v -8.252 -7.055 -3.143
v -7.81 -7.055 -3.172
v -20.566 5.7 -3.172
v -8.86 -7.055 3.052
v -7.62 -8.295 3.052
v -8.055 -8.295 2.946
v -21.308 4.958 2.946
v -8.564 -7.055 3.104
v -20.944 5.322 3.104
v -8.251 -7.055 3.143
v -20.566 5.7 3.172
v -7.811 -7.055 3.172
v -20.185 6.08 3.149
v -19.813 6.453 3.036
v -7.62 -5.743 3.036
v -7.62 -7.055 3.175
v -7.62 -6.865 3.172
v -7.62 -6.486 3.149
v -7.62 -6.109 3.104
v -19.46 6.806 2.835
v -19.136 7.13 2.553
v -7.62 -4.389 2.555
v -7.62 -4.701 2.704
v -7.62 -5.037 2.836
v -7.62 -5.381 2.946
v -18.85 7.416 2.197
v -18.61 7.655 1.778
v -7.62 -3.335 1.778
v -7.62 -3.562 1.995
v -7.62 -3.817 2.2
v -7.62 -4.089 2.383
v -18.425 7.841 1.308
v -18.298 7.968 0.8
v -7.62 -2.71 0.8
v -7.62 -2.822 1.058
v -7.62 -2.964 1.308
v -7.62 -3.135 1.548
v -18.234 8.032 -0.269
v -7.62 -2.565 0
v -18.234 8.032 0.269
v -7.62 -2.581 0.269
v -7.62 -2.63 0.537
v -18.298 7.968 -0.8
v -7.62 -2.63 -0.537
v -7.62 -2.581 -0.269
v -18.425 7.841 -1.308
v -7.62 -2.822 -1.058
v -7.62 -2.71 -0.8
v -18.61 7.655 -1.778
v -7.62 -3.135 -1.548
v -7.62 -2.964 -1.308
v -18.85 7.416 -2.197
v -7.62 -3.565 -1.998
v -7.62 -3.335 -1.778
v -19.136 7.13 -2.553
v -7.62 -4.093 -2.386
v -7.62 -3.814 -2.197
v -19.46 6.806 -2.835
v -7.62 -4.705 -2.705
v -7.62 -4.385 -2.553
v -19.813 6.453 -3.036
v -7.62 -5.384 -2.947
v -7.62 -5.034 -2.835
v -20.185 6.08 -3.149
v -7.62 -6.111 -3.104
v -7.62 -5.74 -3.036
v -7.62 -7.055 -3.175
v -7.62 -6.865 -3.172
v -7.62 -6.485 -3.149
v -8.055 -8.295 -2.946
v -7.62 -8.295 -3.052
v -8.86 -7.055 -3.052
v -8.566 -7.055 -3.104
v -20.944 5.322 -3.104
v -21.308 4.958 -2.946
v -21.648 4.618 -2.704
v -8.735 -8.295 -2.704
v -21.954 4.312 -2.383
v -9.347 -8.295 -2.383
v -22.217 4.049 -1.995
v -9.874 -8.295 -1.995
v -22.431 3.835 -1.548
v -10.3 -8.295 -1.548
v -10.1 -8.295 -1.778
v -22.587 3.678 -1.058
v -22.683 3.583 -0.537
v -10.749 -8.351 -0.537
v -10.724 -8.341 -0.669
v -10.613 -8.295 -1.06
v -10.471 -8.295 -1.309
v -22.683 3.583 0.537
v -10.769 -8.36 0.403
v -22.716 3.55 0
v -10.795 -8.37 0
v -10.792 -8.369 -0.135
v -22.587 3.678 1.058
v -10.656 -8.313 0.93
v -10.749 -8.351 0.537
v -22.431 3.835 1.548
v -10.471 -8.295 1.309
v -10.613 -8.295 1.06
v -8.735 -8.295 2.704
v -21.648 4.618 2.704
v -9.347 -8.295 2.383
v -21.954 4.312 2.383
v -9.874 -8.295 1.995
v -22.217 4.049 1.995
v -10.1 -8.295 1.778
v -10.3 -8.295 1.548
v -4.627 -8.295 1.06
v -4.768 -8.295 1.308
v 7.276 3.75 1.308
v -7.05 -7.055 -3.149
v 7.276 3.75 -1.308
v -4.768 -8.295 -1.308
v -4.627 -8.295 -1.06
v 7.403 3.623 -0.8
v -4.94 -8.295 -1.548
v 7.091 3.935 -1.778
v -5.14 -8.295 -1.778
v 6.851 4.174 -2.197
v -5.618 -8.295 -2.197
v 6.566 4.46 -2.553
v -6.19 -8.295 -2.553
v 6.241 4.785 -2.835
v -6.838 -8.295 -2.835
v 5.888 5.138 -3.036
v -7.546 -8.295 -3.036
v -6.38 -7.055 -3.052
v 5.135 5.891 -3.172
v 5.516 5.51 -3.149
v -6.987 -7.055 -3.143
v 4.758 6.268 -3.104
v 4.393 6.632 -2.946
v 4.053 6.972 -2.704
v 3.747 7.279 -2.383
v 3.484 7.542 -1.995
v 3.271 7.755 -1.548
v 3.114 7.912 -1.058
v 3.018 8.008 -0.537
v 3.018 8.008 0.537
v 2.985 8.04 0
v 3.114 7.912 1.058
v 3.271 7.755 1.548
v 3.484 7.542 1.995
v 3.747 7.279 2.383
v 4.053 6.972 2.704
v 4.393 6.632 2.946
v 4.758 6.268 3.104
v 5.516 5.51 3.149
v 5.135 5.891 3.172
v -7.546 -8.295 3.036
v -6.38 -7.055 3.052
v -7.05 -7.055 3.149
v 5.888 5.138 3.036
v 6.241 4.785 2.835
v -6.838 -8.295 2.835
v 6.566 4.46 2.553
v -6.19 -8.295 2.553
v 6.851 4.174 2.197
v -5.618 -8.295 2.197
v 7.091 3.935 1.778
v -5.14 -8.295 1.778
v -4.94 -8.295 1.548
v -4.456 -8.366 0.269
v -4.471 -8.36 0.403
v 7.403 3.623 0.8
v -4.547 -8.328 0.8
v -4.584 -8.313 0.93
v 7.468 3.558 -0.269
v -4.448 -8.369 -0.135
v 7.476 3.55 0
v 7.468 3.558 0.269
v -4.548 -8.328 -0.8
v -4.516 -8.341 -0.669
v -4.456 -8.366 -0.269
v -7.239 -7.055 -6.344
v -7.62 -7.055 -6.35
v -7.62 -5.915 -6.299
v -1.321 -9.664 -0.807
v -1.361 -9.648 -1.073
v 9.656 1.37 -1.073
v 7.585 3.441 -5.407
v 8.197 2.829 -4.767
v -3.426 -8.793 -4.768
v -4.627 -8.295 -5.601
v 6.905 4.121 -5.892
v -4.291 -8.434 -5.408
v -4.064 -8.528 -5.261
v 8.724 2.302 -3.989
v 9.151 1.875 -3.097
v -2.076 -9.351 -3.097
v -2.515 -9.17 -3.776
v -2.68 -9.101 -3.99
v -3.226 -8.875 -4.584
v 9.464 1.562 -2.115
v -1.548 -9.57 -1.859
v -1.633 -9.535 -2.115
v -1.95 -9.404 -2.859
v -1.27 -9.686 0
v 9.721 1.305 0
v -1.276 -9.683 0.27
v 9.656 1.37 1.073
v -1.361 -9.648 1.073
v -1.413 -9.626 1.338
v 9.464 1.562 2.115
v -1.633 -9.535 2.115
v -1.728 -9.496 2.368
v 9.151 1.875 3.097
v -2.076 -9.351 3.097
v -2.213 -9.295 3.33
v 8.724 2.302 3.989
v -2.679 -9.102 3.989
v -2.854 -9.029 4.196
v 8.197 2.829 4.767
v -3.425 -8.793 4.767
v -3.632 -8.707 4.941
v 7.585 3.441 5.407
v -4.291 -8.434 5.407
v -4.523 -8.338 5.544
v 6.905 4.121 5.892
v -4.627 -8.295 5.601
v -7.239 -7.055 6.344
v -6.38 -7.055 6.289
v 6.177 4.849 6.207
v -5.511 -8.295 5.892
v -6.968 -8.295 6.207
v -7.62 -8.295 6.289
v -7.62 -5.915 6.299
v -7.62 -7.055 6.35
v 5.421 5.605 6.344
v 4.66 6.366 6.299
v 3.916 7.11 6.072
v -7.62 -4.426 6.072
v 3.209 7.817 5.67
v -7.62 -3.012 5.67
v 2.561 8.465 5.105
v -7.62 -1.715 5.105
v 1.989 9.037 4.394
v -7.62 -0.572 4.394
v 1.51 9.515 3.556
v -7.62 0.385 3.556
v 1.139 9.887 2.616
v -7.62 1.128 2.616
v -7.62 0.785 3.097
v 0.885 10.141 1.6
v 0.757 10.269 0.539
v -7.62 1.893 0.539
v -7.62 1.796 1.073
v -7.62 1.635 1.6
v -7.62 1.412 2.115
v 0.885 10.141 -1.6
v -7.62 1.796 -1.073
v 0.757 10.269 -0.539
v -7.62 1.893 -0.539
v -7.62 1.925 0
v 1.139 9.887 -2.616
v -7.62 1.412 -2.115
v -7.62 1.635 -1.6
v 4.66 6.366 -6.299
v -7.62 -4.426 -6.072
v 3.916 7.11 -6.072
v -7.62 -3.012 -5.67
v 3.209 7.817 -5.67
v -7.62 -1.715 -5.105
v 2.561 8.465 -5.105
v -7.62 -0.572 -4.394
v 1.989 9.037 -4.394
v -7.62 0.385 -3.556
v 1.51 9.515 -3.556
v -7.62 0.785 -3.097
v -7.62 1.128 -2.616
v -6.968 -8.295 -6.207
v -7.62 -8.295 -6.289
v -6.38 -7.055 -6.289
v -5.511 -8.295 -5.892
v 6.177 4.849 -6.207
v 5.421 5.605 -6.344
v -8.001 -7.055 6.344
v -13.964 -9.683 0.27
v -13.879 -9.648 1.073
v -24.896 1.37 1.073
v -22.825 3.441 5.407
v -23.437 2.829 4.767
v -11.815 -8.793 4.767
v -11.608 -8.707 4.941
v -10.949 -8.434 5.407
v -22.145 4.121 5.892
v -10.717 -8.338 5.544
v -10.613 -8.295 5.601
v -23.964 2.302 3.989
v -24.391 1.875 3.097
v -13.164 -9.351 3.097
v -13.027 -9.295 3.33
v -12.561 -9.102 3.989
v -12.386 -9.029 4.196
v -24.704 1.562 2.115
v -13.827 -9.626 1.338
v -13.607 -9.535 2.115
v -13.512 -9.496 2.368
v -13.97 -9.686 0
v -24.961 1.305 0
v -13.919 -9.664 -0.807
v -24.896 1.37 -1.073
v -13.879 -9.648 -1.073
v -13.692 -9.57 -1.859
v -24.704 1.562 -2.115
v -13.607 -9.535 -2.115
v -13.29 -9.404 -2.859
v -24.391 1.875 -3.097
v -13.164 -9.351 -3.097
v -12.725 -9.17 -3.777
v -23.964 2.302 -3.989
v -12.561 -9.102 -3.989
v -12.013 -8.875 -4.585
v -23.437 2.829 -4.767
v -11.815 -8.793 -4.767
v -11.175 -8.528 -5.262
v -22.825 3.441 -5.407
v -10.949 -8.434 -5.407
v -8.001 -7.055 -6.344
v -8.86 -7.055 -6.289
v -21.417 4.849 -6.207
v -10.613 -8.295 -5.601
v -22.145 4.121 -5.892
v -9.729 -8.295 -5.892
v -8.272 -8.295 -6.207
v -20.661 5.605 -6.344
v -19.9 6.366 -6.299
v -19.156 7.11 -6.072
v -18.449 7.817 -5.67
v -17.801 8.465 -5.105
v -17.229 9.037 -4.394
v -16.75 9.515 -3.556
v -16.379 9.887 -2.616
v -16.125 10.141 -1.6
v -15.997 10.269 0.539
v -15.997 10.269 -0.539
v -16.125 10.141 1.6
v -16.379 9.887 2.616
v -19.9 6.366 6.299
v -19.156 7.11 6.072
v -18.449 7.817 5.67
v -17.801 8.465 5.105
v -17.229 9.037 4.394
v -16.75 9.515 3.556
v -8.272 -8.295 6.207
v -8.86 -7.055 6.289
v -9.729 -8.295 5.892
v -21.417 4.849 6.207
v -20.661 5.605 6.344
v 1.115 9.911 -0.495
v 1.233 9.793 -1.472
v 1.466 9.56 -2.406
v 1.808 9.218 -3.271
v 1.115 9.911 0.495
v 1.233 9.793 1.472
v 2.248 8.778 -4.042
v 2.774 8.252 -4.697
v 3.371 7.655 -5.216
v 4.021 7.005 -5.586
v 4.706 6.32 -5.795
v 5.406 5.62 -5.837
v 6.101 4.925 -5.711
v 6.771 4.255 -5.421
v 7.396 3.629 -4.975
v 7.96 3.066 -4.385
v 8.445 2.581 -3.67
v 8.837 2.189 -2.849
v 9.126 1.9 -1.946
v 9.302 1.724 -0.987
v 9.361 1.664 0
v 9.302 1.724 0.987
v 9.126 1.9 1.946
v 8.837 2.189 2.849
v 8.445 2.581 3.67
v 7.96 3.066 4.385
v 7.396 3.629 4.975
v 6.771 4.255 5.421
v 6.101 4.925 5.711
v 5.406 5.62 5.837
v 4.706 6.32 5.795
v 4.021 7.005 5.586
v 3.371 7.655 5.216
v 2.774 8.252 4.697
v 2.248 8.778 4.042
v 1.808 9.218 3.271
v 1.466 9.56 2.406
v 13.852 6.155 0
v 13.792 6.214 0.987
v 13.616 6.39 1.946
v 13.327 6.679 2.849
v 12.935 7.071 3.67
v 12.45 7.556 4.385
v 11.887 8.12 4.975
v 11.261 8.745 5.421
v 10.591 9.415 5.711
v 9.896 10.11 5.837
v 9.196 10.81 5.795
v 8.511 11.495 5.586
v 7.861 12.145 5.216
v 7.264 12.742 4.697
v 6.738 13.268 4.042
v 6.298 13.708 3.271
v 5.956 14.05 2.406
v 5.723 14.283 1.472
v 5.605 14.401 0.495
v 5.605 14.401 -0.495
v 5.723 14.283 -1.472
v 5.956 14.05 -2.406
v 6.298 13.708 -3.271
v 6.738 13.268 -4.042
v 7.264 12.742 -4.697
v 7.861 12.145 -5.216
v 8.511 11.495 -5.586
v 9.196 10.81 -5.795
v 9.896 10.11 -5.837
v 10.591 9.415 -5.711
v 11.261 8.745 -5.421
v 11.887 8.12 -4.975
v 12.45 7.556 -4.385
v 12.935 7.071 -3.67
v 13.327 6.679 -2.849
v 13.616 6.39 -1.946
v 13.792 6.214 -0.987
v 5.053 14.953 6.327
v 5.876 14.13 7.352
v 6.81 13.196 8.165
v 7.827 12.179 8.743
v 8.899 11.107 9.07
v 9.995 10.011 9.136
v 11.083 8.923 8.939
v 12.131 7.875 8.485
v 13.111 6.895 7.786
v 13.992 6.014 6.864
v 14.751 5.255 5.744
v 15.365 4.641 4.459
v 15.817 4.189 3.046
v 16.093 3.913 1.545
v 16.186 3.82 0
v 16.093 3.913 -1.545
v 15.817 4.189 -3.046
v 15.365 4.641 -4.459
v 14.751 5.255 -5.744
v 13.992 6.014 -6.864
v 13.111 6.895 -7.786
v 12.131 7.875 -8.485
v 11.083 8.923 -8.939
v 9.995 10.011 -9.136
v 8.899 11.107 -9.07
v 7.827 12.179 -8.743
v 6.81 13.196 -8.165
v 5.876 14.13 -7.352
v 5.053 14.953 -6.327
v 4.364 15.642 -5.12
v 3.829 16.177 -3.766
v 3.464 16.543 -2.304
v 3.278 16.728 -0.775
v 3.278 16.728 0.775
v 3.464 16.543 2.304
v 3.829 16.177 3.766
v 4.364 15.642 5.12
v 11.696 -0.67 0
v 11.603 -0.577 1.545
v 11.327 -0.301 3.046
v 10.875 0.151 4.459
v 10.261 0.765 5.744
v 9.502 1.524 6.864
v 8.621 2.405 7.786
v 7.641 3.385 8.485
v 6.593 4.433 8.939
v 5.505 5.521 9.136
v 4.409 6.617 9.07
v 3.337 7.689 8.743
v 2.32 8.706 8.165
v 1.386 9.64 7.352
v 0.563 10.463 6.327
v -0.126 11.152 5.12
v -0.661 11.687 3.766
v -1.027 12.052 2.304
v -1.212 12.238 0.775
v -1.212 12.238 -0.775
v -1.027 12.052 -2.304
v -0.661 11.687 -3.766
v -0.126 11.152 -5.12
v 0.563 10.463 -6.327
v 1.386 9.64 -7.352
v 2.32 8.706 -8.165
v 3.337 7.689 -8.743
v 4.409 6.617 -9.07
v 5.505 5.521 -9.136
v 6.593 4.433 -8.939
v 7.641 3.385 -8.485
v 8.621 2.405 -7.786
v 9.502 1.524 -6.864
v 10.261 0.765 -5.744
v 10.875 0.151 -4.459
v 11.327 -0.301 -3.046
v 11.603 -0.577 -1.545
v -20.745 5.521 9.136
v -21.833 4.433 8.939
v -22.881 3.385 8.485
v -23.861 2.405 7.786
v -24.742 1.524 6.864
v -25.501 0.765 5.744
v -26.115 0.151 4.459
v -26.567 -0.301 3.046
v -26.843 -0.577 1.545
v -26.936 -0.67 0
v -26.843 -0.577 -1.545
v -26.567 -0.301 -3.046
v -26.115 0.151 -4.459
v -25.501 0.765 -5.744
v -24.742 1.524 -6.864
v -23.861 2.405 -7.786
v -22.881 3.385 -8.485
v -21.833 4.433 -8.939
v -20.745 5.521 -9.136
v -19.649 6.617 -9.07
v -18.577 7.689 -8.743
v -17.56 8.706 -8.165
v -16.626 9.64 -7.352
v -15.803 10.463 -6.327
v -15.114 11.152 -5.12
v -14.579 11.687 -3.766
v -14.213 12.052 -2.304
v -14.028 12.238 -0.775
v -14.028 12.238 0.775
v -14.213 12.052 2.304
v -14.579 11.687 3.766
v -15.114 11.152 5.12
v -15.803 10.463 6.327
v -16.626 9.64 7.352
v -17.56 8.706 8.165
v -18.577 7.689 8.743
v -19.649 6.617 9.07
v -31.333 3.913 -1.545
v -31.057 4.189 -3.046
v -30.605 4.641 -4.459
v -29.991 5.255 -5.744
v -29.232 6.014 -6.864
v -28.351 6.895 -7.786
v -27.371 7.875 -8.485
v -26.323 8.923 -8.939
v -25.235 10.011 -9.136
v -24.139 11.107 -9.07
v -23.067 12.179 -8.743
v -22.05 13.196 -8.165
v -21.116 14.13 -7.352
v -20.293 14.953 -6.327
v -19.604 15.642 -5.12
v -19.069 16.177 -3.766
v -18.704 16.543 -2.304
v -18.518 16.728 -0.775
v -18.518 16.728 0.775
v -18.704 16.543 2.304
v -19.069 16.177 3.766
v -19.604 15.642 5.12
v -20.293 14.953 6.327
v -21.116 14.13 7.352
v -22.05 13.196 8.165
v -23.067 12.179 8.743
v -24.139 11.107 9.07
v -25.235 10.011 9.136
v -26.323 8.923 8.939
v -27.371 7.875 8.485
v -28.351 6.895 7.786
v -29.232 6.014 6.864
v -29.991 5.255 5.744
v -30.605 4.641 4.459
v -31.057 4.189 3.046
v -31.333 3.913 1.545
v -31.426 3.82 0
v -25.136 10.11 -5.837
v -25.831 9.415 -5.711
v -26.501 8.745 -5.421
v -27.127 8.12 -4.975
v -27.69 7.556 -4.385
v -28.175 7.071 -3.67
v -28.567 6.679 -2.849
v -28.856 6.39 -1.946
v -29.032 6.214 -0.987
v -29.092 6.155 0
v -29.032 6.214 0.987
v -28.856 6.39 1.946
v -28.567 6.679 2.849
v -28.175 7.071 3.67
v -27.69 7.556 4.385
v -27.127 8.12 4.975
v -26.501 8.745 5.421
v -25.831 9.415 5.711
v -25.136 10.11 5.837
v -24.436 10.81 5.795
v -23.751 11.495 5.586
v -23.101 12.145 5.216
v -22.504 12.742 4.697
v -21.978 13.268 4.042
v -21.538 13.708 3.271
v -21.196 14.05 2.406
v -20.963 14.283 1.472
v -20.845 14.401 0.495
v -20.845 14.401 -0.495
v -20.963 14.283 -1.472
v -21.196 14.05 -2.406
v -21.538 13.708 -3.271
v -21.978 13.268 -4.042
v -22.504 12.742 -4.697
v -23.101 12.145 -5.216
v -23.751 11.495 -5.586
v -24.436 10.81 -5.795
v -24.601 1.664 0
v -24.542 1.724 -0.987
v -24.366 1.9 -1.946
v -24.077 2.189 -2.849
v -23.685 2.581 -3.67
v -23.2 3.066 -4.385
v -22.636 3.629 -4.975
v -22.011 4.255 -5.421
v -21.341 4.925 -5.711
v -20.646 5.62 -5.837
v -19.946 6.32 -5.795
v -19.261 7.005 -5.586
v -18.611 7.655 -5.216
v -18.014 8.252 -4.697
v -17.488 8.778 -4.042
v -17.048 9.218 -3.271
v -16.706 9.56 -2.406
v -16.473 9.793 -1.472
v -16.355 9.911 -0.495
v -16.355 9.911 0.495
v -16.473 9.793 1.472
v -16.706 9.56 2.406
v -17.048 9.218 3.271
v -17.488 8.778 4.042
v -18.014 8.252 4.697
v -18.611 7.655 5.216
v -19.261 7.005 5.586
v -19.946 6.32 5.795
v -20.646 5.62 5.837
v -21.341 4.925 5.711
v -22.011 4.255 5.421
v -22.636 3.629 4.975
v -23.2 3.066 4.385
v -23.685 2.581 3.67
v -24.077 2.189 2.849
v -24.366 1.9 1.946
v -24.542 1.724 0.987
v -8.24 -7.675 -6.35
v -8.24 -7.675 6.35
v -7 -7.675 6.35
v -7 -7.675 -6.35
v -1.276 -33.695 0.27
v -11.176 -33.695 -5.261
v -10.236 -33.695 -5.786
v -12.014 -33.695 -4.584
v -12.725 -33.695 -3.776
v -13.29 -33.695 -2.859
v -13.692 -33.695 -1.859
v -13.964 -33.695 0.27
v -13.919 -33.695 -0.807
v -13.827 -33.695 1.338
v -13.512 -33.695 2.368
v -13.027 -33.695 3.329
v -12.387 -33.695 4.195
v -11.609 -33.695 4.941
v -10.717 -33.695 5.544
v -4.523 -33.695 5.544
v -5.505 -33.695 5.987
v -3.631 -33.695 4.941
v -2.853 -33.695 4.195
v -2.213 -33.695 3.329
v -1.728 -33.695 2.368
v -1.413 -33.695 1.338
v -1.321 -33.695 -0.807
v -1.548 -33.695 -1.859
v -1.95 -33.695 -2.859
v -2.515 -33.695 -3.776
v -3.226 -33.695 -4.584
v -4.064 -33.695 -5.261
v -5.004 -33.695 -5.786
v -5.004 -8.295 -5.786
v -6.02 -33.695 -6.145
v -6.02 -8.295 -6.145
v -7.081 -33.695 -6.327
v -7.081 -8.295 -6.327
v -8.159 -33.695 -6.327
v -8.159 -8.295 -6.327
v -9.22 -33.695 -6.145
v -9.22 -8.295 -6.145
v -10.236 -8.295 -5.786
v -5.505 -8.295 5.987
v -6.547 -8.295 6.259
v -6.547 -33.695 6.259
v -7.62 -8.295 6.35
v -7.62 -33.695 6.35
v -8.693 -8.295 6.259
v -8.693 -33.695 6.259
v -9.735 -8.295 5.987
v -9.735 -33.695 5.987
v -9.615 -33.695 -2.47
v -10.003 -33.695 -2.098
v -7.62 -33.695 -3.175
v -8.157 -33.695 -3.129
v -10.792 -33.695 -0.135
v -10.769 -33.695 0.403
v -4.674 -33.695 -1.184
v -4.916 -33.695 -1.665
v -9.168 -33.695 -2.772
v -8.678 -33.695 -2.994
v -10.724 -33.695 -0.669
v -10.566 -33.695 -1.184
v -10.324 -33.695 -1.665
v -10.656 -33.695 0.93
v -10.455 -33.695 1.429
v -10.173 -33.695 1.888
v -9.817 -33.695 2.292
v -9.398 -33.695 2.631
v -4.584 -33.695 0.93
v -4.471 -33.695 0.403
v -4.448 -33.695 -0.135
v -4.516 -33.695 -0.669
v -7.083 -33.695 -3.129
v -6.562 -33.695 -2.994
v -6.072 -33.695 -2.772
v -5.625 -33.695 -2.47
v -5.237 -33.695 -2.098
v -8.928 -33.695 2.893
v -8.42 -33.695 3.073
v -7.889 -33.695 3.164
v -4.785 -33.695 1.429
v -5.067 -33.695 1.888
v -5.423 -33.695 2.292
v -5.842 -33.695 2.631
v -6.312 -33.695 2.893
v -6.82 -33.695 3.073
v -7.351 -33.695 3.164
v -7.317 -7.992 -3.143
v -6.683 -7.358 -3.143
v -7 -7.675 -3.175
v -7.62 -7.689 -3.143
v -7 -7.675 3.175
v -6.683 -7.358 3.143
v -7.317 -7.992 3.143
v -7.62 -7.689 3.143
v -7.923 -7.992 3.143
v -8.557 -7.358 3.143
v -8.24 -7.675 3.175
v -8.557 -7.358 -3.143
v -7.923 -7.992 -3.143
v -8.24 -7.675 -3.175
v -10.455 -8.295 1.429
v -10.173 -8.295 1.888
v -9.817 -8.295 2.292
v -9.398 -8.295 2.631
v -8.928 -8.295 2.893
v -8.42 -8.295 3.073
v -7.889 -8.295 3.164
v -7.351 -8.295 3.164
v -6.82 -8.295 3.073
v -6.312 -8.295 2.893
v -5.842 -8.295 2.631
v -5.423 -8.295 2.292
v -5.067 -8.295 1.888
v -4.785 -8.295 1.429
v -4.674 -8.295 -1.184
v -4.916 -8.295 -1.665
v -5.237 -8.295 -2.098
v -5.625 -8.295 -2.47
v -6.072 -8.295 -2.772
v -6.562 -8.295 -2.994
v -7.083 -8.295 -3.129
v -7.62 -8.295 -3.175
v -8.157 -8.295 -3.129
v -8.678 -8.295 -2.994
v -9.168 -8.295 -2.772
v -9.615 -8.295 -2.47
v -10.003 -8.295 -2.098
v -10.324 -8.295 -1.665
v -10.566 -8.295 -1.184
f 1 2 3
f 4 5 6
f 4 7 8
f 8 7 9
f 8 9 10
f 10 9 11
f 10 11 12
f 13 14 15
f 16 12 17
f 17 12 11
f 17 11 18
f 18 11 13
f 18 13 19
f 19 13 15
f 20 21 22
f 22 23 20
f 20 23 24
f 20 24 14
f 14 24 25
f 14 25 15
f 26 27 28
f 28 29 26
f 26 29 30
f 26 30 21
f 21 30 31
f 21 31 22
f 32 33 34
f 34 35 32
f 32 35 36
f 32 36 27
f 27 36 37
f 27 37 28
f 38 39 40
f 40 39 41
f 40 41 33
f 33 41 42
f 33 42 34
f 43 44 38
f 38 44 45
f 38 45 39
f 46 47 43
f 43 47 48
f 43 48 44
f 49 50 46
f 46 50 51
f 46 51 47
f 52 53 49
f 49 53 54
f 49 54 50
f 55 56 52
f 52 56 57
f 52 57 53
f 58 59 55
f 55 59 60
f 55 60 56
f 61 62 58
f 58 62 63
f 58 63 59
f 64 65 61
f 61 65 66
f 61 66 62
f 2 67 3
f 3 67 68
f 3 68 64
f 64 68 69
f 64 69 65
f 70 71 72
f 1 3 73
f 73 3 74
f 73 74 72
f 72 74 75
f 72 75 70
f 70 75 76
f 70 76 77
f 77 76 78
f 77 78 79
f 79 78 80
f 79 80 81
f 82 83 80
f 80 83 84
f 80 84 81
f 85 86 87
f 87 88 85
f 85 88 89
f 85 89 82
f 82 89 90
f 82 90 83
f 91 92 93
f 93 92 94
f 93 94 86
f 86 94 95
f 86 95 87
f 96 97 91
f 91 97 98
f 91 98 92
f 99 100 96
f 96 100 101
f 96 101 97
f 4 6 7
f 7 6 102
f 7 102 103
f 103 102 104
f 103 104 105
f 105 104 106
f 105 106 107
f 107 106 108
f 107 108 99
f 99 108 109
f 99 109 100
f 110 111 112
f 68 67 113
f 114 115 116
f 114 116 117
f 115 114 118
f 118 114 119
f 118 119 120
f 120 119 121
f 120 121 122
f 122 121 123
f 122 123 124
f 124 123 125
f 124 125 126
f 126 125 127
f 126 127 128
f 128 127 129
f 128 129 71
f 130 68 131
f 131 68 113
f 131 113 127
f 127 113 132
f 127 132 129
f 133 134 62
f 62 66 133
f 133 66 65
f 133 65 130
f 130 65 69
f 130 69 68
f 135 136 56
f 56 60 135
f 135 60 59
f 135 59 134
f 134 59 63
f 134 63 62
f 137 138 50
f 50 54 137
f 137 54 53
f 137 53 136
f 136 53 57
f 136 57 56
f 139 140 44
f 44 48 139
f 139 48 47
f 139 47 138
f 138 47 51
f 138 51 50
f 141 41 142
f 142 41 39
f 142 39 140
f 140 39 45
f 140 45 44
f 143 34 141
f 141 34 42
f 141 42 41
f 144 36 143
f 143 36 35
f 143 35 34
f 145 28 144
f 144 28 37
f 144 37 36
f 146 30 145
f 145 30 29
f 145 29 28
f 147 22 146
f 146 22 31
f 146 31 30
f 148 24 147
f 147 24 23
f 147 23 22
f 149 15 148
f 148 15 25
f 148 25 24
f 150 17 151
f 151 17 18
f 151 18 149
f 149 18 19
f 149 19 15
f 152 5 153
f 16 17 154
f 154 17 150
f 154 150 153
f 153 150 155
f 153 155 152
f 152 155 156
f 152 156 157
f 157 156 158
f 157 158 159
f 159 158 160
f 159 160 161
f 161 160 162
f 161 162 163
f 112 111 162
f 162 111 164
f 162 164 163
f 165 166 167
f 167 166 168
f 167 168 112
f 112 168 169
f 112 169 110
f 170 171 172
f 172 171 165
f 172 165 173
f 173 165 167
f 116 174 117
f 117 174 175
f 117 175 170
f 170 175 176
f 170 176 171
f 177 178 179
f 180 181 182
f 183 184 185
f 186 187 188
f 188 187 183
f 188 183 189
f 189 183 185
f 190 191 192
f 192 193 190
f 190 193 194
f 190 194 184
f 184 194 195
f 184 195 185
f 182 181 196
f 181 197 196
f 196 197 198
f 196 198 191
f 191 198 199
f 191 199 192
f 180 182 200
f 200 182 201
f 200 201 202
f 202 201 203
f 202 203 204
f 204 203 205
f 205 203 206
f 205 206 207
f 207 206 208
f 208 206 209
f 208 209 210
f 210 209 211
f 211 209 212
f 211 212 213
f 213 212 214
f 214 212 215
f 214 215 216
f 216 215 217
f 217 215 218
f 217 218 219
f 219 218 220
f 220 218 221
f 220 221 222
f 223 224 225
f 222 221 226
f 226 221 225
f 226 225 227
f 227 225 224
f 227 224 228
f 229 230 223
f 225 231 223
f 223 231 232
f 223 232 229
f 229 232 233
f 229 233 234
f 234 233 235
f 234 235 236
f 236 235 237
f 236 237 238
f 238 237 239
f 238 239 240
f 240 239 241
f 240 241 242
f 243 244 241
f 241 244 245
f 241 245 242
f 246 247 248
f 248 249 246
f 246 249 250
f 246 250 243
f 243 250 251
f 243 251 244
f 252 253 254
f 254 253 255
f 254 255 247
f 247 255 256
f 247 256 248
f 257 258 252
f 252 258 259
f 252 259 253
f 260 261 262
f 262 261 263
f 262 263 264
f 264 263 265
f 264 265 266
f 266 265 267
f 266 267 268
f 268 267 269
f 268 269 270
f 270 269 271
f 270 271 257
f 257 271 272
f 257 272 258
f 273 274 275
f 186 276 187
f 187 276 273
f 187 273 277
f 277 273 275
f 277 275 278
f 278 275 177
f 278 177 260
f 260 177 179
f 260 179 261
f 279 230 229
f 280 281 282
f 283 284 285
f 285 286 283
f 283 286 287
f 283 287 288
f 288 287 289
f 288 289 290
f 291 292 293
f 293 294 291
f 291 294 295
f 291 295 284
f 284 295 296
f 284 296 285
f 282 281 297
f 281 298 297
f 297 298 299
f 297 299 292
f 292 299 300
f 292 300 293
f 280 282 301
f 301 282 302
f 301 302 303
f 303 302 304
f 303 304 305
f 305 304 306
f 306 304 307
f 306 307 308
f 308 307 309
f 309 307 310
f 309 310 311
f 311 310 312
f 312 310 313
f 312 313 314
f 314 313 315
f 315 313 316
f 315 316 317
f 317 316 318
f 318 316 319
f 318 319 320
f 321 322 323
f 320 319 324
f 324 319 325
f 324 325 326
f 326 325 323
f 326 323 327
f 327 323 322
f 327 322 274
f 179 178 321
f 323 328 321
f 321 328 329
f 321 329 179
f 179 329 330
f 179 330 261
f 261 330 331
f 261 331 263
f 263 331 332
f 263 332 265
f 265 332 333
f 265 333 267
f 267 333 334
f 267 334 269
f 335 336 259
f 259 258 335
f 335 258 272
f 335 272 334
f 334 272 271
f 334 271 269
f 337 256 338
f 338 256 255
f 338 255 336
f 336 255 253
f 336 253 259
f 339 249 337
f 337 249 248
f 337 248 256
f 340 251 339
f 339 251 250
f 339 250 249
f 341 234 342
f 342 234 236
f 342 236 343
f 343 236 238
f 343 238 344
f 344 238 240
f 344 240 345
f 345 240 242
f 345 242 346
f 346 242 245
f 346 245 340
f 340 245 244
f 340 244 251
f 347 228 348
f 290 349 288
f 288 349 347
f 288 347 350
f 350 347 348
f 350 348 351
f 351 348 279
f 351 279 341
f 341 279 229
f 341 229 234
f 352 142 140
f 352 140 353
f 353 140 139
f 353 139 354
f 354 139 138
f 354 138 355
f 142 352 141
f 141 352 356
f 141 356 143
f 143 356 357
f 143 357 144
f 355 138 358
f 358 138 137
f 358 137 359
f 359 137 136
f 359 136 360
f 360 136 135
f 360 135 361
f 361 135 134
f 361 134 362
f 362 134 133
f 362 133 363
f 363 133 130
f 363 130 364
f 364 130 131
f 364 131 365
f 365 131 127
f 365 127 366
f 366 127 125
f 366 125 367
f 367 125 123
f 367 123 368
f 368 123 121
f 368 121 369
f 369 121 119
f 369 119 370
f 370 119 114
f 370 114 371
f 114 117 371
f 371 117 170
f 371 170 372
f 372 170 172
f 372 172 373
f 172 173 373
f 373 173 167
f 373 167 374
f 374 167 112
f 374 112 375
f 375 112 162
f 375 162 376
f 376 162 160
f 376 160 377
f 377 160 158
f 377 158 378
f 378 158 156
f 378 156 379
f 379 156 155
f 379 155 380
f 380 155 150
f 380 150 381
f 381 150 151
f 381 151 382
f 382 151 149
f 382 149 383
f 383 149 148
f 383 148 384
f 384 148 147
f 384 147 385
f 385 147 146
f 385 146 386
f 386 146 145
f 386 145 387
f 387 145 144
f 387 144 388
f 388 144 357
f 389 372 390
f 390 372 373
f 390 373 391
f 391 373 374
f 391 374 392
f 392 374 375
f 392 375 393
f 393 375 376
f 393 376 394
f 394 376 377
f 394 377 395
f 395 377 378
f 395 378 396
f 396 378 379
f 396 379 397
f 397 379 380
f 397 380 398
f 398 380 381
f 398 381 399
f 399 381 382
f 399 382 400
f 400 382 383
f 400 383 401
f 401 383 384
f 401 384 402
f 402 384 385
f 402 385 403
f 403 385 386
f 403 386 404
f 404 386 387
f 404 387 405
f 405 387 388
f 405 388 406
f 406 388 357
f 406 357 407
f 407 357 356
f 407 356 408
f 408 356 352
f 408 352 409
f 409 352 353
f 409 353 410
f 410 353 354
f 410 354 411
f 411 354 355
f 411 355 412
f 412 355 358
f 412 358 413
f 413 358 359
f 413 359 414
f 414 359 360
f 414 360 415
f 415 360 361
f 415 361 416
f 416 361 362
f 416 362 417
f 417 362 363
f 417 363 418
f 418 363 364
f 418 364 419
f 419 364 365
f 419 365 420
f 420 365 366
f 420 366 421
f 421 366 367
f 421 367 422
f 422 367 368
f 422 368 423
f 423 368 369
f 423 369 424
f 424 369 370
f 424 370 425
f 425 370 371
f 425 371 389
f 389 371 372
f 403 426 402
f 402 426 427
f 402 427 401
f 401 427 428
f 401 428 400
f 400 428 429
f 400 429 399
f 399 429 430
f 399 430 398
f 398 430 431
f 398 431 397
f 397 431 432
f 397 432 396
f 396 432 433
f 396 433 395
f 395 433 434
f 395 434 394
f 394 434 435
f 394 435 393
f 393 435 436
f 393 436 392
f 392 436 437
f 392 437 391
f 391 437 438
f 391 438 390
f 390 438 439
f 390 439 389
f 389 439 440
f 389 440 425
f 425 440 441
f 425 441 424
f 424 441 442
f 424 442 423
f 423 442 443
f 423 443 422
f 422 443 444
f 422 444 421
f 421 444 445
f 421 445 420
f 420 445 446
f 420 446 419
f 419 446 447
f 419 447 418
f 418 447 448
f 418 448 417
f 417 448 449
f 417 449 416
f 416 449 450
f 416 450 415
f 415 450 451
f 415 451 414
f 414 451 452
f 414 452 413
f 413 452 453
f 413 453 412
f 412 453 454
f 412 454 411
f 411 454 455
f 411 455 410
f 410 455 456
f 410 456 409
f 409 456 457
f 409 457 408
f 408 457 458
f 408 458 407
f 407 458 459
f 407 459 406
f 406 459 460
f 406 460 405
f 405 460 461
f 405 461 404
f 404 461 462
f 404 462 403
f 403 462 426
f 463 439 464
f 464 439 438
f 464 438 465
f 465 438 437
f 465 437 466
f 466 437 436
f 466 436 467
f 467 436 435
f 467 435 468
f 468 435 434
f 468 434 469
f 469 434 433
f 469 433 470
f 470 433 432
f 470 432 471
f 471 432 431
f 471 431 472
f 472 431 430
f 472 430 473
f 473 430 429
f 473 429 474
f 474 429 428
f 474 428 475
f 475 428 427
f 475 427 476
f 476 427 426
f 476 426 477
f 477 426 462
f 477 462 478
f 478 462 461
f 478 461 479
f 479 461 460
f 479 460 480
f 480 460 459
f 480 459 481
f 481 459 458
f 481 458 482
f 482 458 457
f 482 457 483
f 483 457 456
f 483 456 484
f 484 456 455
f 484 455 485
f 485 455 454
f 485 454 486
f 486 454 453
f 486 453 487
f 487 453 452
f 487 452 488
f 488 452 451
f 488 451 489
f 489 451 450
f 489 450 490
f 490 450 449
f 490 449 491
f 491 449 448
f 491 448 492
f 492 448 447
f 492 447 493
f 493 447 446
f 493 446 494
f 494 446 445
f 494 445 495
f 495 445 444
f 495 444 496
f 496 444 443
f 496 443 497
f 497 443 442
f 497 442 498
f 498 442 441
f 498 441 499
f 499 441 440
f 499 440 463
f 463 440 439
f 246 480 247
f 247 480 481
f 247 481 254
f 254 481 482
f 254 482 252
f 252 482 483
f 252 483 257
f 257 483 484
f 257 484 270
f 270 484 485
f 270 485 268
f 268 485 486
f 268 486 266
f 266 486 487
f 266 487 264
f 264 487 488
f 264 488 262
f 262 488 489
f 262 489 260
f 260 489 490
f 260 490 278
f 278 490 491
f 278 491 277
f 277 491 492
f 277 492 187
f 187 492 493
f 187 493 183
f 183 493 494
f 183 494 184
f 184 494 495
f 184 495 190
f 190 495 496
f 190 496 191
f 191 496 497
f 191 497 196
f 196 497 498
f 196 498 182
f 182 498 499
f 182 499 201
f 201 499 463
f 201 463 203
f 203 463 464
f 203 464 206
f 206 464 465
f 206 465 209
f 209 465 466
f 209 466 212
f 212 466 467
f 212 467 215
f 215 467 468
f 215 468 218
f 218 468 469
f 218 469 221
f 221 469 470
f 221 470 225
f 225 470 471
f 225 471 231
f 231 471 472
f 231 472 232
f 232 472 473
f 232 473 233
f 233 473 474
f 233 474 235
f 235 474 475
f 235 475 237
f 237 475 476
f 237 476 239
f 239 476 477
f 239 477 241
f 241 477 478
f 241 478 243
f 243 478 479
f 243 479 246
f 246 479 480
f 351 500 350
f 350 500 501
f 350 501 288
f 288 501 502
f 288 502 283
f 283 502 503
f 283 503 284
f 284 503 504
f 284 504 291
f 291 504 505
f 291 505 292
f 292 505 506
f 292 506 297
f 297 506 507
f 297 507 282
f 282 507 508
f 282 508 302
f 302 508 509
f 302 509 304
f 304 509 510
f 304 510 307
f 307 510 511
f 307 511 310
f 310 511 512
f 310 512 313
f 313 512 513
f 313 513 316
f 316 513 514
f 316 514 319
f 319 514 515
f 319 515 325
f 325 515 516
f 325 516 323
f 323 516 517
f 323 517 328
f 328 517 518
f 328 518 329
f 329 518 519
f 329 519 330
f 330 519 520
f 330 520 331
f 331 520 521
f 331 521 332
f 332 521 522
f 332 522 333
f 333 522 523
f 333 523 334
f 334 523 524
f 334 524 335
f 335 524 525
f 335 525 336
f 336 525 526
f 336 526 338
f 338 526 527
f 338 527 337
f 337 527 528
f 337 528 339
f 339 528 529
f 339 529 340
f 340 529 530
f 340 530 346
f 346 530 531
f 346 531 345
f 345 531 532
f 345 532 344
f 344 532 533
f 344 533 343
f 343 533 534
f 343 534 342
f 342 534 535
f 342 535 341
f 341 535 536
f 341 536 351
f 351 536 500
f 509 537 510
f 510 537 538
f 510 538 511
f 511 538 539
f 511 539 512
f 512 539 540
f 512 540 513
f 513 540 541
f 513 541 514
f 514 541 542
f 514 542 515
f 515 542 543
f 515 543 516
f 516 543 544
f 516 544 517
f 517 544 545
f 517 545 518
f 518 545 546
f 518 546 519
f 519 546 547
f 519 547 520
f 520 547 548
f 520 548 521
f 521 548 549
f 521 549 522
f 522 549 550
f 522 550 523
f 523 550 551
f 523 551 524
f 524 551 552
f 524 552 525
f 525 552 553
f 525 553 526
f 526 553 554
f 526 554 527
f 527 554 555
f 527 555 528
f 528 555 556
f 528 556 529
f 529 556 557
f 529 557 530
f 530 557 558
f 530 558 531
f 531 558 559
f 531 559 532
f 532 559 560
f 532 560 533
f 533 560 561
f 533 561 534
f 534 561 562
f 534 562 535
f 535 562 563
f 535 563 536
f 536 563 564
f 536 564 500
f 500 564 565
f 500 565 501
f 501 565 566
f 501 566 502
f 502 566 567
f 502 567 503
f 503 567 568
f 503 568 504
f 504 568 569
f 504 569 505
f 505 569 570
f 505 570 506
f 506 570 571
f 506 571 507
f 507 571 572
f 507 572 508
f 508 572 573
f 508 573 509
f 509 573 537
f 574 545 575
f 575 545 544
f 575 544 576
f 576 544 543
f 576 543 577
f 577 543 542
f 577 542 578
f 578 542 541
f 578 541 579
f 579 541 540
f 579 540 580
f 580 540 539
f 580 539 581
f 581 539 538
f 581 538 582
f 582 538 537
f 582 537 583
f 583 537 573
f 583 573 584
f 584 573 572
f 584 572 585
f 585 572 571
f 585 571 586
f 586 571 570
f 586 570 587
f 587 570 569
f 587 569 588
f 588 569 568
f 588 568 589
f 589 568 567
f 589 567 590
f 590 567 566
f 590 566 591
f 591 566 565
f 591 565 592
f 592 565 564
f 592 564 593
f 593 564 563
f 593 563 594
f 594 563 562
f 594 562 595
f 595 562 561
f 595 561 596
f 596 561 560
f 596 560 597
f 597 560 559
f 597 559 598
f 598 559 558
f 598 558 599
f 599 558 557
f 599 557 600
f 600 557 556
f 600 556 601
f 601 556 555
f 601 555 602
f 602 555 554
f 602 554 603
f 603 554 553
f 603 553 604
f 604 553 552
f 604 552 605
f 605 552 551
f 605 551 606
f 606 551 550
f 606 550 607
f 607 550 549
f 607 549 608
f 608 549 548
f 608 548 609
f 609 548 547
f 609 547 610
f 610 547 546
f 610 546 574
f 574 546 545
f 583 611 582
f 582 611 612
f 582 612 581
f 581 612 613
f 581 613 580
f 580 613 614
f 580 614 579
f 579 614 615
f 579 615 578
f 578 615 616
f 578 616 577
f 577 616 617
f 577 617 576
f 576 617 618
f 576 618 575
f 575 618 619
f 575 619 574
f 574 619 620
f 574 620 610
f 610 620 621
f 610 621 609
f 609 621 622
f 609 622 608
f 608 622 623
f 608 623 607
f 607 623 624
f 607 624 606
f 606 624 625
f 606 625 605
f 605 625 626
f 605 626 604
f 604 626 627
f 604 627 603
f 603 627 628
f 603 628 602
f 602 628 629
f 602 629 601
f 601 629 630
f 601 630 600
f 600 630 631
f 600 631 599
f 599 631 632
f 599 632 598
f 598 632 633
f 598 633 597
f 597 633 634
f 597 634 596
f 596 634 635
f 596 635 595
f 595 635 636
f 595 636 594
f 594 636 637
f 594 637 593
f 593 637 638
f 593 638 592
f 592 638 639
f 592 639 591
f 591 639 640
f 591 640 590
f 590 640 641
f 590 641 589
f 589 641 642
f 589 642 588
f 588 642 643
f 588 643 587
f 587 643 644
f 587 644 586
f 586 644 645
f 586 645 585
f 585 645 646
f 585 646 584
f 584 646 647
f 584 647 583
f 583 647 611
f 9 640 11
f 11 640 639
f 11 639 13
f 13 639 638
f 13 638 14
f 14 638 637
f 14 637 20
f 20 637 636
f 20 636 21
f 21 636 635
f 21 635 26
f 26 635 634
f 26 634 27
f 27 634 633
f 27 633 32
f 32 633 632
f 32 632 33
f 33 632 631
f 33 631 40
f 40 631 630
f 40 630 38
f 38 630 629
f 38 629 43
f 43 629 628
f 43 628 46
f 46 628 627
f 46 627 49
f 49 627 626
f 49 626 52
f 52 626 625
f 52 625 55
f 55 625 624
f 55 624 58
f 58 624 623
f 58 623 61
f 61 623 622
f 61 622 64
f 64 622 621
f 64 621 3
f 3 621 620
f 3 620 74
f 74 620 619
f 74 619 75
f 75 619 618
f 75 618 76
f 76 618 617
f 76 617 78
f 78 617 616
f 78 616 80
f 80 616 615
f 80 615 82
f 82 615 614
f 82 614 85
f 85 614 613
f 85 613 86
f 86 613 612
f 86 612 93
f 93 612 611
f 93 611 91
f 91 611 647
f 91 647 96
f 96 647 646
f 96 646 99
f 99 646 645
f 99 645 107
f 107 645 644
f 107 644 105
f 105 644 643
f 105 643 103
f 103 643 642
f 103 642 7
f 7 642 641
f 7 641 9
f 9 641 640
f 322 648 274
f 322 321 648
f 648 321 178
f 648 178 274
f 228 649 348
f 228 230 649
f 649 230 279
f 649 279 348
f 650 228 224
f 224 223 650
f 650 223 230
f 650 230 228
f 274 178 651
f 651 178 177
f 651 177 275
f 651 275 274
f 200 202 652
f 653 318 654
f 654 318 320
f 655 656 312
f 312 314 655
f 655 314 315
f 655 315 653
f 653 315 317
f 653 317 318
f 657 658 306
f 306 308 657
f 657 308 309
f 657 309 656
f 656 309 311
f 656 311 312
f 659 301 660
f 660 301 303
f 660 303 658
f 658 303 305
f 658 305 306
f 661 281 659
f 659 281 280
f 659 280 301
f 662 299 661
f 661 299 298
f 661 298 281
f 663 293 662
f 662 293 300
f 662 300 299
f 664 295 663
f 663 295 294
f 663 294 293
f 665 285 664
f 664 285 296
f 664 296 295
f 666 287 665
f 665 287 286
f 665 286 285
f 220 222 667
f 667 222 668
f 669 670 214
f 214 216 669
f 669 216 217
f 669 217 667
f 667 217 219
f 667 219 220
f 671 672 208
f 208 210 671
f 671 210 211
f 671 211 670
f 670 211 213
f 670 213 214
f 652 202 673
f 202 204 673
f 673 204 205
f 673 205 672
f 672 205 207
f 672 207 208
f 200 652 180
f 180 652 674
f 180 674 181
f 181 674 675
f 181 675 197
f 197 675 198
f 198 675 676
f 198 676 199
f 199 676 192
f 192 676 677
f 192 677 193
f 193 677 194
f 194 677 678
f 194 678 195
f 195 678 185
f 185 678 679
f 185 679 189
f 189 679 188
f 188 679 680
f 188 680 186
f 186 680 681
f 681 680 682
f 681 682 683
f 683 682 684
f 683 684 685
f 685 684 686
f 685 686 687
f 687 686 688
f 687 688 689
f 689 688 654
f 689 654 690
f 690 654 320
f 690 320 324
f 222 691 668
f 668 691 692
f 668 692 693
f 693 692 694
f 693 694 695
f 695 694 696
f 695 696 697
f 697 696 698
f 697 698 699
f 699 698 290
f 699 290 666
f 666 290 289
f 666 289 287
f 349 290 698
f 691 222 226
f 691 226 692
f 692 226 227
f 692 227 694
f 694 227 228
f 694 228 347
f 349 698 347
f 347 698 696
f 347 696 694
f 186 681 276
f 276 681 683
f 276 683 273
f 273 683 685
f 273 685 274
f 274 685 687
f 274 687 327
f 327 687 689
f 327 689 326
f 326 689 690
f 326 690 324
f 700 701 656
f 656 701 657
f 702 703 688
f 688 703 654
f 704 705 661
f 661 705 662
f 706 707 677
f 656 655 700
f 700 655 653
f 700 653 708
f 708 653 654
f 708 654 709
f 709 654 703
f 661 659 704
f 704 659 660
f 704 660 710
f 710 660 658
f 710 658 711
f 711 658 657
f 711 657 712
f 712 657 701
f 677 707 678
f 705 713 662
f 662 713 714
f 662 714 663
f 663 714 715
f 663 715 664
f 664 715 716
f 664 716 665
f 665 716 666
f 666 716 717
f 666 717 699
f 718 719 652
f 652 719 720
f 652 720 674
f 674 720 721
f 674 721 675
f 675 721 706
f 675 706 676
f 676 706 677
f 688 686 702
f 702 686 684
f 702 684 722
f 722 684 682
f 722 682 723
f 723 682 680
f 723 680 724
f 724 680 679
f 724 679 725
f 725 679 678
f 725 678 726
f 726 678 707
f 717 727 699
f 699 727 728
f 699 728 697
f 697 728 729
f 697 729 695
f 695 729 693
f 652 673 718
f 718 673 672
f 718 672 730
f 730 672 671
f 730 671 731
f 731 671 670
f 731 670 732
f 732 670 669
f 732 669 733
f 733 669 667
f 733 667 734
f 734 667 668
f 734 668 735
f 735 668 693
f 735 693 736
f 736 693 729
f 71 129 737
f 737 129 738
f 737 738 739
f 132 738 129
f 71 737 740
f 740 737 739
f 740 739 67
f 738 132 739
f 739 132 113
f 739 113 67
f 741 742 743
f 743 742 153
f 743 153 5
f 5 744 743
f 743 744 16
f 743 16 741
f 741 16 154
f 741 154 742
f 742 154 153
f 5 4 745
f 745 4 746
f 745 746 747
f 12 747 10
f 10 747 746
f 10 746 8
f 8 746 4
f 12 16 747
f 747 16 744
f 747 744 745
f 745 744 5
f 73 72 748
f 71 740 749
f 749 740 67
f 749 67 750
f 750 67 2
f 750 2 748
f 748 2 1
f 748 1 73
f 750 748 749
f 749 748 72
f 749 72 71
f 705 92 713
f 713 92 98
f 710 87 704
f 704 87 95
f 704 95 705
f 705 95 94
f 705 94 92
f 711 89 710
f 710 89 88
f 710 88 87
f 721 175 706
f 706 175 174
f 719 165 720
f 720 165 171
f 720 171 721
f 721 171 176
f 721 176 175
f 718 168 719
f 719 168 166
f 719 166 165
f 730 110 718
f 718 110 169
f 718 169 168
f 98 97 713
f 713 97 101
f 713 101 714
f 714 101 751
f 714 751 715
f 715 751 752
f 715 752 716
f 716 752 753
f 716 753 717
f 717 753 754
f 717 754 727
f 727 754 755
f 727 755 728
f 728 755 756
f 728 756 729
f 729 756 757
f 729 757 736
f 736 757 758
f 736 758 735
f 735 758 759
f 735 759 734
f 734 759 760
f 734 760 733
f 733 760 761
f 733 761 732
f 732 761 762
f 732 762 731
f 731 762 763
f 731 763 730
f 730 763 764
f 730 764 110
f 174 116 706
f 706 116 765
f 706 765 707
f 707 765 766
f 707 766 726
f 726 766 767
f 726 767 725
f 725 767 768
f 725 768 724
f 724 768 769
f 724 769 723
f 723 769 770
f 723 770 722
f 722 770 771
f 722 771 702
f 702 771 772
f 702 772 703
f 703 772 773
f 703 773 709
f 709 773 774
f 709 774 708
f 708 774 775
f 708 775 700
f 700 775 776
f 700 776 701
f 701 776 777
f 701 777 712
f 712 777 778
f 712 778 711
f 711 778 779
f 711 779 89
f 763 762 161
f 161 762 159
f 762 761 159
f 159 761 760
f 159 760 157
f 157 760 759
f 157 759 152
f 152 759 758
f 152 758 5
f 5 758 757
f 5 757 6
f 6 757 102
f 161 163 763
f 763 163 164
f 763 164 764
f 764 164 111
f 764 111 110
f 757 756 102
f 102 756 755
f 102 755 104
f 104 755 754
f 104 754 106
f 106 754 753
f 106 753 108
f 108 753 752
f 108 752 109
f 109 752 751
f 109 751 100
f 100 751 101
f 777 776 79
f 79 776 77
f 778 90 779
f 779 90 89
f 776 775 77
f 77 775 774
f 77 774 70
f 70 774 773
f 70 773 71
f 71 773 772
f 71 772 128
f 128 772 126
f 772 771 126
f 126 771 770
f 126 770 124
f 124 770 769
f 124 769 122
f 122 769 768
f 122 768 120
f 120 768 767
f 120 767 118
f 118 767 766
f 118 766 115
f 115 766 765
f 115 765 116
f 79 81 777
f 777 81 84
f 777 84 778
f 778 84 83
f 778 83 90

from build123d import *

# Parameters (mm, degrees)
SKETCH3_W          = 6.35
SKETCH3_H          = 25.4
SKETCH4_R          = 3.175
CUT_EXTRUDE1_DEPTH = 19.05
SKETCH6_R          = 3.175
CUT_EXTRUDE2_DEPTH = 25.4


with BuildPart() as part:
    # Sketch2 → Revolve1 (revolve)
    with BuildSketch(Plane.XY, mode=Mode.PRIVATE) as revolve1_sk:
        Polygon((5.230557596, 5.79531338), (1.09963978, 9.926231195), (5.589767841, 14.416359256), (3.254901249, 16.751225847), (-1.235226811, 12.261097787), (0.740429535, 10.28544144), (-12.729954646, -3.184942741), (-8.239826586, -7.675070802), align=None)
    revolve1 = revolve(revolve1_sk.sketch.rotate(Axis((-8.239826586, -7.675070802, 0), (0.7071067811865436, 0.7071067811865516, 0)), 180), axis=Axis((-8.239826586, -7.675070802, 0), (0.7071067811865436, 0.7071067811865516, 0)))

    # Mirror1: Revolve1 across plane
    add(revolve1.mirror(Plane(origin=(-7.62, 0, 0), x_dir=(0, 0, 1), z_dir=(1, 0, 0))))

    # Sketch3 → Revolve2 (revolve)
    with BuildSketch(Plane.XY, mode=Mode.PRIVATE) as revolve2_sk:
        with Locations((-4.445, -20.994897388)):
            Rectangle(SKETCH3_W, SKETCH3_H)
    revolve(revolve2_sk.sketch.rotate(Axis((-7.62, -8.294897388, 0), (0, -1, 0)), 90), axis=Axis((-7.62, -8.294897388, 0), (0, -1, 0)))

    # Sketch4 → Cut-Extrude1 (cut)
    with BuildSketch(Plane(origin=(-13.132935488, 13.132935488, 0), x_dir=(0, 0, 1), z_dir=(-0.7071067811865437, 0.7071067811865515, 0))):
        with Locations(Location((0, -10.376964701, 0), (0, 0, 270))):
            Circle(SKETCH4_R)
    cut_extrude1 = extrude(amount=-CUT_EXTRUDE1_DEPTH, mode=Mode.SUBTRACT)

    # Mirror2: Cut-Extrude1 across plane
    add(cut_extrude1.mirror(Plane(origin=(-7.62, 0, 0), x_dir=(0, 0, 1), z_dir=(1, 0, 0))), mode=Mode.SUBTRACT)

    # Sketch6 → Cut-Extrude2 (cut)
    with BuildSketch(Plane.XZ.offset(33.694897388)):
        with Locations(Location((-7.62, 0, 0), (0, 0, 270))):
            Circle(SKETCH6_R)
    extrude(amount=-CUT_EXTRUDE2_DEPTH, mode=Mode.SUBTRACT)


solid = part.part
